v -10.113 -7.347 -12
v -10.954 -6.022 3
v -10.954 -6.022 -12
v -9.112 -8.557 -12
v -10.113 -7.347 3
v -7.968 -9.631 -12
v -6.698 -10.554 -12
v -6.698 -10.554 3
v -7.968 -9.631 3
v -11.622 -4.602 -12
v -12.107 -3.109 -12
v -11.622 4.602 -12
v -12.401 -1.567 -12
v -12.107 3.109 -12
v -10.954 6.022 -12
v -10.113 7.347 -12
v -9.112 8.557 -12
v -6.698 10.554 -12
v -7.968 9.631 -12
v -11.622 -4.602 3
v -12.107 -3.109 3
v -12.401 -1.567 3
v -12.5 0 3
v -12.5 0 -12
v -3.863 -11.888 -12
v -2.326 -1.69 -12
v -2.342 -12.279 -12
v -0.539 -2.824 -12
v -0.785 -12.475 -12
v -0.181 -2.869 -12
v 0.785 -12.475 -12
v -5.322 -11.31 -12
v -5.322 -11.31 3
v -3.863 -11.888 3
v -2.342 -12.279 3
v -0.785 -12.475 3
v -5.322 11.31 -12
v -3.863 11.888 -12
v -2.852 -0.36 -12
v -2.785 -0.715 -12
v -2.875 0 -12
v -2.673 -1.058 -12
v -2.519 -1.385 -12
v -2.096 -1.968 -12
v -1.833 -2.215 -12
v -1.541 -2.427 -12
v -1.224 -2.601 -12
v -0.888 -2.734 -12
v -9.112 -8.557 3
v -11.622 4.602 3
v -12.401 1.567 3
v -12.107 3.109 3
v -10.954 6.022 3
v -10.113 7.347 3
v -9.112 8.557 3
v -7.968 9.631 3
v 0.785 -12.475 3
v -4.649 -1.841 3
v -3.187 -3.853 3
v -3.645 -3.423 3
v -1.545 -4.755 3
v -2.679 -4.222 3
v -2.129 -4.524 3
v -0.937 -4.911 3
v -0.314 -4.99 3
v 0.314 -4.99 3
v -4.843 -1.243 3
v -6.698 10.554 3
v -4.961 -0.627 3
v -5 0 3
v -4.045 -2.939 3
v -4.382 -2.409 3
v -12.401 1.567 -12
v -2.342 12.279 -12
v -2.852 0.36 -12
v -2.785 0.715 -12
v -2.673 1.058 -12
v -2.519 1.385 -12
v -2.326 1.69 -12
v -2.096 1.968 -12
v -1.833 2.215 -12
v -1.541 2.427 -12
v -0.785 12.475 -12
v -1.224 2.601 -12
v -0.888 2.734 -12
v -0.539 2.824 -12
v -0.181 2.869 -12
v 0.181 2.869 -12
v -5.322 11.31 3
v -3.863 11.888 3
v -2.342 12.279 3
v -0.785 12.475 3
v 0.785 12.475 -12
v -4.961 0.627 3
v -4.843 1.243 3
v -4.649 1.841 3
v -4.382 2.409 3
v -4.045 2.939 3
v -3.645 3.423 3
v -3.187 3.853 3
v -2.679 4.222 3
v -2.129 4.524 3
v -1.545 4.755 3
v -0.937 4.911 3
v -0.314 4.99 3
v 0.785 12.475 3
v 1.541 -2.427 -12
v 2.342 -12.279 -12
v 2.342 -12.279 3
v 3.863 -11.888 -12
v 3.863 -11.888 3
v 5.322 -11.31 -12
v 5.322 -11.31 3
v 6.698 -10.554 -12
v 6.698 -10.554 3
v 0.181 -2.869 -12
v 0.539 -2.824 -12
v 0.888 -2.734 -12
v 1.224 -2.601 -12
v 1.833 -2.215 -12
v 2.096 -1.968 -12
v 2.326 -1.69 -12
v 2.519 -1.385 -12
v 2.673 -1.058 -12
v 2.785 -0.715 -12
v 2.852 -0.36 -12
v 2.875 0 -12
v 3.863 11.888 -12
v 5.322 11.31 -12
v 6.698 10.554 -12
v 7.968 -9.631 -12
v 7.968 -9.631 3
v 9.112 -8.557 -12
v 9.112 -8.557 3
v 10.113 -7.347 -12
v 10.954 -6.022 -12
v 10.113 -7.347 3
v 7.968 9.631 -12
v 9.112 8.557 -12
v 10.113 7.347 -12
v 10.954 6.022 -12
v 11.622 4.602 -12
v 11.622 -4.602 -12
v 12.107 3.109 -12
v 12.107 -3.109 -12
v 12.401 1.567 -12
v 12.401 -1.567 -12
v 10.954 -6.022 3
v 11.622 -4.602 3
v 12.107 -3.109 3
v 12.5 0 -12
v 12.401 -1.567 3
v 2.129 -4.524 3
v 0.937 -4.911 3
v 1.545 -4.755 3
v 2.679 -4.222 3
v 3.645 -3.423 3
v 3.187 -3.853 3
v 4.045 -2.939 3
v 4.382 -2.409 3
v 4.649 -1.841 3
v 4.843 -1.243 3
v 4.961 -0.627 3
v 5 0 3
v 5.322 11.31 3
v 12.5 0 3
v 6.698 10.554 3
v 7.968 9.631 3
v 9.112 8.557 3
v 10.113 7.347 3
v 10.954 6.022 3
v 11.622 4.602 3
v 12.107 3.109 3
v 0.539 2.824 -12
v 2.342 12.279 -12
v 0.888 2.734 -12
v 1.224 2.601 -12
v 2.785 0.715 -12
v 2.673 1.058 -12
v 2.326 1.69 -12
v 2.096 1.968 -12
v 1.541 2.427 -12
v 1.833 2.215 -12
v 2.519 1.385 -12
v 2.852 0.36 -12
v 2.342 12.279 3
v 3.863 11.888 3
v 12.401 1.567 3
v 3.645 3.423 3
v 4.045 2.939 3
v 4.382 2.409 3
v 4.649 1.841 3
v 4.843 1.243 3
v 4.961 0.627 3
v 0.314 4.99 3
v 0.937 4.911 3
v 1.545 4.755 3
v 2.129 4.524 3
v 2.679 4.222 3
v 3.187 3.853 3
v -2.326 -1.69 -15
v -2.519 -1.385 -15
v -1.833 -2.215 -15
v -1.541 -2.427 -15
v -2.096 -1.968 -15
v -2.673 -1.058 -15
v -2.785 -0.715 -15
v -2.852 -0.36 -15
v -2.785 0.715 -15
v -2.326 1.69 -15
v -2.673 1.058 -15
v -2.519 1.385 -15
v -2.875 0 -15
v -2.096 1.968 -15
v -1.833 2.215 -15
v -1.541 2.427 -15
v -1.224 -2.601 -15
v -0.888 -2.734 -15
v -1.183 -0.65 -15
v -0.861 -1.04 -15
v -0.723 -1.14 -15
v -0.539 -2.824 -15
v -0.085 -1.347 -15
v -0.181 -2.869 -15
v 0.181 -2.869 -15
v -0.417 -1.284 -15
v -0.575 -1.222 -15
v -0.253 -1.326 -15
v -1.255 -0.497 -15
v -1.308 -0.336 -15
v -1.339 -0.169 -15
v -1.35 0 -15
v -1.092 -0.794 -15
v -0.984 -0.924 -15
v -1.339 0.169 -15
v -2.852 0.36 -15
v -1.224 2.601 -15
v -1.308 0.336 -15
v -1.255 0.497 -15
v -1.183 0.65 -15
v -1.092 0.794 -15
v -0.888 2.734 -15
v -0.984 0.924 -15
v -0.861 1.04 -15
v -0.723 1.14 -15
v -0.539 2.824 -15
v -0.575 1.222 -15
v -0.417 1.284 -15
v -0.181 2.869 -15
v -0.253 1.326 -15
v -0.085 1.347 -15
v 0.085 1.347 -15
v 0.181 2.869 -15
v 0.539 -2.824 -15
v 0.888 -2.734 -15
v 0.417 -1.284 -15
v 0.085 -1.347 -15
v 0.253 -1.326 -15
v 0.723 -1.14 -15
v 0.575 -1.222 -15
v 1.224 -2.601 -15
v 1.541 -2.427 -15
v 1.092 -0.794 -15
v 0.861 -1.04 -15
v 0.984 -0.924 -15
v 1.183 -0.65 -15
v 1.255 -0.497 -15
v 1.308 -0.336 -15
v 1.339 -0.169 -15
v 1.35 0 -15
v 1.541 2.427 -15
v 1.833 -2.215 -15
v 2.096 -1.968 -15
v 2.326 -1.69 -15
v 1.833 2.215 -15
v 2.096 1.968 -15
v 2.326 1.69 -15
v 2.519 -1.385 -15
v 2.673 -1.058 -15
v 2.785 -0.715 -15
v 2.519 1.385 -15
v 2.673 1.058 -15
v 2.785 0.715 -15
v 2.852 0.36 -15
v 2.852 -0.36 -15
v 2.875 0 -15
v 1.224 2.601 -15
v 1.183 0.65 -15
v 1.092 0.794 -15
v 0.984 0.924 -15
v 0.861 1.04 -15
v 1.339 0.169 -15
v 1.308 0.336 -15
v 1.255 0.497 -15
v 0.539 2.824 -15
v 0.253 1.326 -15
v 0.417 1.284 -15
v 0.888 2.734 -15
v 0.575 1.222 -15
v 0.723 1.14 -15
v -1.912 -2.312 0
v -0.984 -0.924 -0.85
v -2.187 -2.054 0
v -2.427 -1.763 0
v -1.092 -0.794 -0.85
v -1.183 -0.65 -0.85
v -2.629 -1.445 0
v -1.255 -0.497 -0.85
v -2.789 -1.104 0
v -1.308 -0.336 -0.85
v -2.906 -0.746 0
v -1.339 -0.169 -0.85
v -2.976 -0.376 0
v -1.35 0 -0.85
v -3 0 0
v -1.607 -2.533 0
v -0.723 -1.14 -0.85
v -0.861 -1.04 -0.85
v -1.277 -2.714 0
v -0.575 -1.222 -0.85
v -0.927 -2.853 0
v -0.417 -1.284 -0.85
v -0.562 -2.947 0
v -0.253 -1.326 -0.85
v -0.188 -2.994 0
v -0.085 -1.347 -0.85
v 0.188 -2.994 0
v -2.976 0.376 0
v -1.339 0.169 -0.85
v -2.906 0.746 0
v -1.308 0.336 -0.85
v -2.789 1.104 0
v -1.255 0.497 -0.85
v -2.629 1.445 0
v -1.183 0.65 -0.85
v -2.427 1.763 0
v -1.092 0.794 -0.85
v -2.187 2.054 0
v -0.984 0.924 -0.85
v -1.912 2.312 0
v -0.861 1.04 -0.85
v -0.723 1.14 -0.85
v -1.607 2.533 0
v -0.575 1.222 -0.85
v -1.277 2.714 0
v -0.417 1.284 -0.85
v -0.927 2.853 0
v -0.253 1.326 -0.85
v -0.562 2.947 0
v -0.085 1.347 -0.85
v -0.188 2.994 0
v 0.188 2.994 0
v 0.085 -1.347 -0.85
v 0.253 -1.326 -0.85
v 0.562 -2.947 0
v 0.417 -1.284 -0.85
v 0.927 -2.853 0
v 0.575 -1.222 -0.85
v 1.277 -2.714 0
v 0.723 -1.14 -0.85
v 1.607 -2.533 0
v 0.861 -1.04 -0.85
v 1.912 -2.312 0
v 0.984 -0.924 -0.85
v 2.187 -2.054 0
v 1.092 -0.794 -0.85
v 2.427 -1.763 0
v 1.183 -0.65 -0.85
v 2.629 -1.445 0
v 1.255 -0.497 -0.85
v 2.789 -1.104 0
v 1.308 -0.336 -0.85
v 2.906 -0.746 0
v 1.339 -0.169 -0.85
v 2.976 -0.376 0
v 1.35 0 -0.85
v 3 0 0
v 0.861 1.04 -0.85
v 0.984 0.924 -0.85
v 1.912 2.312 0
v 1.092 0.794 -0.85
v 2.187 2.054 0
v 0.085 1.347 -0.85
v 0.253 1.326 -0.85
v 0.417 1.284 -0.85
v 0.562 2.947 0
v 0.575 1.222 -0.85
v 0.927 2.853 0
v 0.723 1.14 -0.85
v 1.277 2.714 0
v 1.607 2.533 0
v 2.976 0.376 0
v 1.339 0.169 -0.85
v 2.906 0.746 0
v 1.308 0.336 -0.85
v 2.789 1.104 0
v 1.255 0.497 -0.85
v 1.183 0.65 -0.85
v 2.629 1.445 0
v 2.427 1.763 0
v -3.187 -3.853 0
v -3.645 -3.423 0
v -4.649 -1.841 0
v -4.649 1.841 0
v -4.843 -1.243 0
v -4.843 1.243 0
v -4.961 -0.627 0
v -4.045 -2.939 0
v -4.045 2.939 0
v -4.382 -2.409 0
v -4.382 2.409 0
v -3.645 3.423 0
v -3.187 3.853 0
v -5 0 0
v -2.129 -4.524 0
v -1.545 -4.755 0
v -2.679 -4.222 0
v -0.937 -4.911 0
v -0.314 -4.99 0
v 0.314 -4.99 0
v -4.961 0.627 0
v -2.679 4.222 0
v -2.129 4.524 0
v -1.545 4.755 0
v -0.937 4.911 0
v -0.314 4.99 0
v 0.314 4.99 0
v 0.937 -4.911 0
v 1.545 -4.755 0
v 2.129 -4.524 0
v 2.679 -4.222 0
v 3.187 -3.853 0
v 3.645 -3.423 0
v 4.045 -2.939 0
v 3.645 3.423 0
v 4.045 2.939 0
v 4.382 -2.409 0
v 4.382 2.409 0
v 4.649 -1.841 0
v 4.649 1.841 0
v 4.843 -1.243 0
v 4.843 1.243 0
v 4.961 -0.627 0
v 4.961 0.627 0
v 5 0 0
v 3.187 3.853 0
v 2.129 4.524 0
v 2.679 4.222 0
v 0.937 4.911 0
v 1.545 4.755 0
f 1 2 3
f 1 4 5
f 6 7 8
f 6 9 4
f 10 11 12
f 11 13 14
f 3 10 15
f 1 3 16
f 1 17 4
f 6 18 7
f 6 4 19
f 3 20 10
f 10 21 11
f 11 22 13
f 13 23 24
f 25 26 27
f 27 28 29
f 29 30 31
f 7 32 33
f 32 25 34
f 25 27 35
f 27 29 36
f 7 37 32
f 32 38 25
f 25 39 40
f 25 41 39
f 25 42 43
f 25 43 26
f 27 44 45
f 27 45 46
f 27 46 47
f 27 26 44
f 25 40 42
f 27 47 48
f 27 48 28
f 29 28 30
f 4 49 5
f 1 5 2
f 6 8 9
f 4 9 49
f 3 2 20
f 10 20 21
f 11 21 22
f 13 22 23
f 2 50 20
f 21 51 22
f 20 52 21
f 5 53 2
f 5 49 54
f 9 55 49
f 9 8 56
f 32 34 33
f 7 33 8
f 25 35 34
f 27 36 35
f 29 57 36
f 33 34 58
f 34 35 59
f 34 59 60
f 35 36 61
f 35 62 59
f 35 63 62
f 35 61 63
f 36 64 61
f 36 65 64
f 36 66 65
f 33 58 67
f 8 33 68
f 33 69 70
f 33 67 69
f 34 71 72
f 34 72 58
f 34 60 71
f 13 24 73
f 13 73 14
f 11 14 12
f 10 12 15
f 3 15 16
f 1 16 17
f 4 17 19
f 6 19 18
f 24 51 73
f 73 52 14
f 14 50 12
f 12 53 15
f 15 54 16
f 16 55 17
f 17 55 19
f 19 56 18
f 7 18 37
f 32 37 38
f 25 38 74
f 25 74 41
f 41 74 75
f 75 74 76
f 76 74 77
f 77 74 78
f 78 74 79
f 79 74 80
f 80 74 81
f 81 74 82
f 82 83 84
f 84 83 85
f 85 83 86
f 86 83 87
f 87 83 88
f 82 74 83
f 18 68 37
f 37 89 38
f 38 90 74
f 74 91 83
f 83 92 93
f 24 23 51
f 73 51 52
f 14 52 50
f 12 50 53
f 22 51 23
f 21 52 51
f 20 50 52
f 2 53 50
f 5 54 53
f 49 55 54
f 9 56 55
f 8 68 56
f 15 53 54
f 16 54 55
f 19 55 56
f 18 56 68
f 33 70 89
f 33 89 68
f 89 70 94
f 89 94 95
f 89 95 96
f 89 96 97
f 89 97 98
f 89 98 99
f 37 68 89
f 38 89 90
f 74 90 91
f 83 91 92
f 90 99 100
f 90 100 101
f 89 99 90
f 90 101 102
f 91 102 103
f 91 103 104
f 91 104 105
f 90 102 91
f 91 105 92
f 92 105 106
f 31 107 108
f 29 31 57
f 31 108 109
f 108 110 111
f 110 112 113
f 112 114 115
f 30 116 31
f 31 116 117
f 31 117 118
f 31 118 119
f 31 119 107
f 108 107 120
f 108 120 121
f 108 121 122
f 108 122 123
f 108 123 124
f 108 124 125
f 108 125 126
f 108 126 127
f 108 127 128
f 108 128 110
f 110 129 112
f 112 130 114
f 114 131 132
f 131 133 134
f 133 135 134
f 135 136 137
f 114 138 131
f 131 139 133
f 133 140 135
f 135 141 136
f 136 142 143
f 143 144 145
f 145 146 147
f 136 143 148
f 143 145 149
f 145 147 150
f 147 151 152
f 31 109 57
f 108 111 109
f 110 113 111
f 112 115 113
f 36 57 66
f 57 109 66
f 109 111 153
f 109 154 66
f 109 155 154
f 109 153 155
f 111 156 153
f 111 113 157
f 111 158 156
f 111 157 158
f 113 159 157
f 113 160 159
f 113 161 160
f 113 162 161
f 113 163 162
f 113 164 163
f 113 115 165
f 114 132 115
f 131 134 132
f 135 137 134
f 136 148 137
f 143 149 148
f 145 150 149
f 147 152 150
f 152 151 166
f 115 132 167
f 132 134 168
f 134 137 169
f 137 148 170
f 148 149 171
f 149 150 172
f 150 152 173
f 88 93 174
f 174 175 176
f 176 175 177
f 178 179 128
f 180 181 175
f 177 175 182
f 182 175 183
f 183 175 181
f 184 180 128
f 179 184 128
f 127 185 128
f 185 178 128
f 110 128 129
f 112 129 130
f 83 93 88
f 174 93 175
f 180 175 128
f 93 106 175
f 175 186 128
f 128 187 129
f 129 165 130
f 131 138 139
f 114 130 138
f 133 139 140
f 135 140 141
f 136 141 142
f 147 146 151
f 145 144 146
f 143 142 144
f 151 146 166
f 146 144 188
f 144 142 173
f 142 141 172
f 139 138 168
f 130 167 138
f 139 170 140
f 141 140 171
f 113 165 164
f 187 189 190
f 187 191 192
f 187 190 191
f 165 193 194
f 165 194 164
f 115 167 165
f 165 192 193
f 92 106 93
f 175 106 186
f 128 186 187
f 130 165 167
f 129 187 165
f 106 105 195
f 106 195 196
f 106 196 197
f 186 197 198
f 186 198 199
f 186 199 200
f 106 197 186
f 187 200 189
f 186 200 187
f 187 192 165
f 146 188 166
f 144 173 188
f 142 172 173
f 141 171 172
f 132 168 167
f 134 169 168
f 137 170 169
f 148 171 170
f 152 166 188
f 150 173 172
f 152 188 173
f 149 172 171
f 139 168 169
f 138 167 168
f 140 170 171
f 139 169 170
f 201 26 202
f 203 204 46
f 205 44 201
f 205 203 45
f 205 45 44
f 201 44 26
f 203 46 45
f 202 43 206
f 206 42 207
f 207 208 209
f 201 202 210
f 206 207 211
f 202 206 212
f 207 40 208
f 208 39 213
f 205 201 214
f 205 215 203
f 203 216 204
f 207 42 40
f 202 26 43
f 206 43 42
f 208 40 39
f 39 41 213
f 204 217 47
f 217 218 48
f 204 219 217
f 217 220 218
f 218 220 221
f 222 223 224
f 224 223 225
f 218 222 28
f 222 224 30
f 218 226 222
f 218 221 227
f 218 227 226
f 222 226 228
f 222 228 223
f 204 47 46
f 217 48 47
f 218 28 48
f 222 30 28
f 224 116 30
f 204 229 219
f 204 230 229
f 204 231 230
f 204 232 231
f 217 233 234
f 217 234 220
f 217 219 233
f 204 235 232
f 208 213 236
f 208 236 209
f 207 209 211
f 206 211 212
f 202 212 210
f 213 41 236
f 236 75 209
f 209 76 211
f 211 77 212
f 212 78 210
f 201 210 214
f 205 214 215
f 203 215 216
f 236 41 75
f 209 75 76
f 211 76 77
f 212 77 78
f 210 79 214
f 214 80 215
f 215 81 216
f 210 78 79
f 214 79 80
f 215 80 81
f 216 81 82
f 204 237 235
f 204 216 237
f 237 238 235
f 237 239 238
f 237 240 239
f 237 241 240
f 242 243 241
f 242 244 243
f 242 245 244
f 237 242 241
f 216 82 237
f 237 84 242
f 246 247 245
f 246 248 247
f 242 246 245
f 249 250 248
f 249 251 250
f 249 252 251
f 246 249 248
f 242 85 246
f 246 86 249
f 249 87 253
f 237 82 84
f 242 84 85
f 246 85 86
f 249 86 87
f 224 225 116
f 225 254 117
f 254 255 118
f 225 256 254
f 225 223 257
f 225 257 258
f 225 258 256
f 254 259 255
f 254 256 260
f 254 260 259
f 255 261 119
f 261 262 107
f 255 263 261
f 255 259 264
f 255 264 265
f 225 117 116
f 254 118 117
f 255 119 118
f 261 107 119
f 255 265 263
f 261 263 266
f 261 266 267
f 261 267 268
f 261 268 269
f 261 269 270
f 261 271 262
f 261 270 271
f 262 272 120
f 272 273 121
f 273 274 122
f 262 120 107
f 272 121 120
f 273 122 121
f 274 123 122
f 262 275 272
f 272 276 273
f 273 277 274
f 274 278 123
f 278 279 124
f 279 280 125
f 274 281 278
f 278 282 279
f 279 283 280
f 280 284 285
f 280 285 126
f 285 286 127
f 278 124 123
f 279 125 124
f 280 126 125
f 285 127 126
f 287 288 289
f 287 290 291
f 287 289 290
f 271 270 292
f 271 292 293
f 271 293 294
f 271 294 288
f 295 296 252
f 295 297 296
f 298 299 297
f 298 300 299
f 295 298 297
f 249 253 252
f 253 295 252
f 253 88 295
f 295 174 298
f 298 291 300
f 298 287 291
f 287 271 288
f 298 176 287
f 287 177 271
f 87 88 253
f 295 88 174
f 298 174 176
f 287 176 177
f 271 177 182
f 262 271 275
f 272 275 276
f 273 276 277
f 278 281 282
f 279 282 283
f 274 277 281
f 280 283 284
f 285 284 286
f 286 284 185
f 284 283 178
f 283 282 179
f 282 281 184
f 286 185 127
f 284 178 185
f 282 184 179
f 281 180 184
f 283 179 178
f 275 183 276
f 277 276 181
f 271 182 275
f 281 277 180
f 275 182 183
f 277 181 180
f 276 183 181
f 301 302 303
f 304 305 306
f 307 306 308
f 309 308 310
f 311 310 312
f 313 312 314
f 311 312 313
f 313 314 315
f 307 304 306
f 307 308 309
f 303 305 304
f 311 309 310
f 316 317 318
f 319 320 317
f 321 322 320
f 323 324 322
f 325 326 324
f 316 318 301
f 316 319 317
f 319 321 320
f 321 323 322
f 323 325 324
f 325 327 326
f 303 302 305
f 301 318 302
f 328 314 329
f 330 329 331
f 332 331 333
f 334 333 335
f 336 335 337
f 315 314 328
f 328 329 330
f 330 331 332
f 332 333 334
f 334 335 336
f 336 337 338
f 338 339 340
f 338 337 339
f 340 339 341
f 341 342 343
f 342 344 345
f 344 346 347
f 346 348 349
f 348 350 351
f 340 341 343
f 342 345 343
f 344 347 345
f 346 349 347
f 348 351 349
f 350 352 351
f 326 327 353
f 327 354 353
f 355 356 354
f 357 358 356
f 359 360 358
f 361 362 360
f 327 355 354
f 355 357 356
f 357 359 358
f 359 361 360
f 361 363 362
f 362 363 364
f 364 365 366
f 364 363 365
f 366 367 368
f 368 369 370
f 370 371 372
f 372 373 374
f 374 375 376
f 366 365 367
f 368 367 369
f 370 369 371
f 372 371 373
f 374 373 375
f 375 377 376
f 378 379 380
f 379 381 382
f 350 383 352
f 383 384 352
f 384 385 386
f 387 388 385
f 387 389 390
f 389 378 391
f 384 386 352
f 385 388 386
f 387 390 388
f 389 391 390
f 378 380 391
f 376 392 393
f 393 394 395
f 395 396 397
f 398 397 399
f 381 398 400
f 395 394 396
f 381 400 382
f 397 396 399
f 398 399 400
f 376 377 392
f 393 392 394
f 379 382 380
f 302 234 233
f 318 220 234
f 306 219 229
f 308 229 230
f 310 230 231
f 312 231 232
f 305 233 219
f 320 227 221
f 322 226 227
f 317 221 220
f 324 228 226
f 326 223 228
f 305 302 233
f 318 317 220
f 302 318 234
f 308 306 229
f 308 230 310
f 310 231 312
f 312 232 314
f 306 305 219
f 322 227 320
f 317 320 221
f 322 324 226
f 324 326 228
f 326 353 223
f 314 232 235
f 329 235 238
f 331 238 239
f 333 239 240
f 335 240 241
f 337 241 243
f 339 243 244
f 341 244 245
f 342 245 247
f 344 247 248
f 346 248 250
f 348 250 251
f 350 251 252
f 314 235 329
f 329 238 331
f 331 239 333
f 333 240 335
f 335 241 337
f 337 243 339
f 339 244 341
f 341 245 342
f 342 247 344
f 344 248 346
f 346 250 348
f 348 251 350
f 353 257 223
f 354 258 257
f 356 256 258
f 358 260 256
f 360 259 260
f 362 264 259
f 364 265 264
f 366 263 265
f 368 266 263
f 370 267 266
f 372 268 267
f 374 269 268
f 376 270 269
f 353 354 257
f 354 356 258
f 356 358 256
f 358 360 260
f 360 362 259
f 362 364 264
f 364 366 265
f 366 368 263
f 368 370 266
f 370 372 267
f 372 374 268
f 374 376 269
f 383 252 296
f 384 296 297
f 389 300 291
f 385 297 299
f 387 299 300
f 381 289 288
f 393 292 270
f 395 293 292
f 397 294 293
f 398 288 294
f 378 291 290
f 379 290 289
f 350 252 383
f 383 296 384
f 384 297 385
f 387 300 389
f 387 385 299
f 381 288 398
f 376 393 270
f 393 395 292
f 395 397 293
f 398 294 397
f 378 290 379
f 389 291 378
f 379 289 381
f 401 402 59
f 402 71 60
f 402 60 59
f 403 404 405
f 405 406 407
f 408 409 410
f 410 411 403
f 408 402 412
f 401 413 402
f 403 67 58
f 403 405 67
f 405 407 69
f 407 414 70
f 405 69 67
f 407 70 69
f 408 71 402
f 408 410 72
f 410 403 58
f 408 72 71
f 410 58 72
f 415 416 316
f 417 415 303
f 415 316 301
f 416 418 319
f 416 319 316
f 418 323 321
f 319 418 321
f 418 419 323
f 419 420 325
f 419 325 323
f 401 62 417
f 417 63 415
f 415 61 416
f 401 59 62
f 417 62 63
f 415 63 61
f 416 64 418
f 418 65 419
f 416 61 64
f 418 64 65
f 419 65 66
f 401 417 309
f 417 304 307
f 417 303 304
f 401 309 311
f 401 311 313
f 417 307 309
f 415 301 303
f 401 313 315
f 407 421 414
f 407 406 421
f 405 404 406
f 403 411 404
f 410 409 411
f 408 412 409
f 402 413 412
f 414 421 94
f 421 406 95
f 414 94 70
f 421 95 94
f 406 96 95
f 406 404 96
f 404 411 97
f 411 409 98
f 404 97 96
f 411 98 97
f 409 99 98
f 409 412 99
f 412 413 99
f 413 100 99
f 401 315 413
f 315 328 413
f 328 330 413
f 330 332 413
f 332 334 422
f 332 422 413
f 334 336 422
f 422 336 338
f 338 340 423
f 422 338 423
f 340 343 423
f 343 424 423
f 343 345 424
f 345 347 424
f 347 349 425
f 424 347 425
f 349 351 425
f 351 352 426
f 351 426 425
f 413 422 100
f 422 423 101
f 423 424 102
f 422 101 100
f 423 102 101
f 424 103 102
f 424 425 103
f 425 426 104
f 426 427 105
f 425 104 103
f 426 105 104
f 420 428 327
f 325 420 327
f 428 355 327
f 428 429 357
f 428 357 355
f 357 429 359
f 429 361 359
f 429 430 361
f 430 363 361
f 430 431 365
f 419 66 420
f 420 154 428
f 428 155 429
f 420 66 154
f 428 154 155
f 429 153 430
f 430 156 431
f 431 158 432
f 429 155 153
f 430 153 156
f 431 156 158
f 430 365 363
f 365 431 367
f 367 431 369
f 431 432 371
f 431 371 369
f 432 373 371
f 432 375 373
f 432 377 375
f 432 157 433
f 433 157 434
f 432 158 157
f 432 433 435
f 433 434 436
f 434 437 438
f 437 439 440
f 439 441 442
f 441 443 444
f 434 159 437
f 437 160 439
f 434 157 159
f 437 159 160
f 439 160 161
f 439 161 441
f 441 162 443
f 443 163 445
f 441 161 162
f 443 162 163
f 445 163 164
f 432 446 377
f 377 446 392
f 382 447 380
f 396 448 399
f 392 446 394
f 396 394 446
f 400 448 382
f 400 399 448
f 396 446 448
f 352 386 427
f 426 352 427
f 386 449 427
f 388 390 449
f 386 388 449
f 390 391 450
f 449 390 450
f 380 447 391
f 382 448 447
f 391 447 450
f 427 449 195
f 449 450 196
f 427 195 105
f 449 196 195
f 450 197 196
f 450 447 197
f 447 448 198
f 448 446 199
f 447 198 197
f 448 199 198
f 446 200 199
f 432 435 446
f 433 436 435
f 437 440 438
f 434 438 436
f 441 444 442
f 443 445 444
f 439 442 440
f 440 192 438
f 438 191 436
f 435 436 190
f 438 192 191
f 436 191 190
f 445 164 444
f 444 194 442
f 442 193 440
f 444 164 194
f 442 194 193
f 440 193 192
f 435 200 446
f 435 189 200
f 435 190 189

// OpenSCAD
$fn = 50;

difference() {
	union() {
		translate(v = [0, 0, -12.0]) {
			cylinder(h = 15, r = 12.5);
		}
		#translate(v = [0, 0, -15.0]) {
			cylinder(h = 15, r = 2.875);
		}
	}
	union() {
		translate(v = [0, 0, 0]) {
			rotate(a = [0, 0, 0]) {
				difference() {
					union() {
						translate(v = [0, 0, -15.0]) {
							cylinder(h = 15, r = 1.0);
						}
						translate(v = [0, 0, -0.85]) {
							cylinder(h = 0.85, r1 = 1.35, r2 = 3.0);
						}
						translate(v = [0, 0, -15.0]) {
							cylinder(h = 15, r = 1.35);
						}
						translate(v = [0, 0, -15.0]) {
							cylinder(h = 15, r = 1.0);
						}
					}
					union();
				}
			}
		}
		#cylinder(h = 3, r = 5.0);
	}
}
